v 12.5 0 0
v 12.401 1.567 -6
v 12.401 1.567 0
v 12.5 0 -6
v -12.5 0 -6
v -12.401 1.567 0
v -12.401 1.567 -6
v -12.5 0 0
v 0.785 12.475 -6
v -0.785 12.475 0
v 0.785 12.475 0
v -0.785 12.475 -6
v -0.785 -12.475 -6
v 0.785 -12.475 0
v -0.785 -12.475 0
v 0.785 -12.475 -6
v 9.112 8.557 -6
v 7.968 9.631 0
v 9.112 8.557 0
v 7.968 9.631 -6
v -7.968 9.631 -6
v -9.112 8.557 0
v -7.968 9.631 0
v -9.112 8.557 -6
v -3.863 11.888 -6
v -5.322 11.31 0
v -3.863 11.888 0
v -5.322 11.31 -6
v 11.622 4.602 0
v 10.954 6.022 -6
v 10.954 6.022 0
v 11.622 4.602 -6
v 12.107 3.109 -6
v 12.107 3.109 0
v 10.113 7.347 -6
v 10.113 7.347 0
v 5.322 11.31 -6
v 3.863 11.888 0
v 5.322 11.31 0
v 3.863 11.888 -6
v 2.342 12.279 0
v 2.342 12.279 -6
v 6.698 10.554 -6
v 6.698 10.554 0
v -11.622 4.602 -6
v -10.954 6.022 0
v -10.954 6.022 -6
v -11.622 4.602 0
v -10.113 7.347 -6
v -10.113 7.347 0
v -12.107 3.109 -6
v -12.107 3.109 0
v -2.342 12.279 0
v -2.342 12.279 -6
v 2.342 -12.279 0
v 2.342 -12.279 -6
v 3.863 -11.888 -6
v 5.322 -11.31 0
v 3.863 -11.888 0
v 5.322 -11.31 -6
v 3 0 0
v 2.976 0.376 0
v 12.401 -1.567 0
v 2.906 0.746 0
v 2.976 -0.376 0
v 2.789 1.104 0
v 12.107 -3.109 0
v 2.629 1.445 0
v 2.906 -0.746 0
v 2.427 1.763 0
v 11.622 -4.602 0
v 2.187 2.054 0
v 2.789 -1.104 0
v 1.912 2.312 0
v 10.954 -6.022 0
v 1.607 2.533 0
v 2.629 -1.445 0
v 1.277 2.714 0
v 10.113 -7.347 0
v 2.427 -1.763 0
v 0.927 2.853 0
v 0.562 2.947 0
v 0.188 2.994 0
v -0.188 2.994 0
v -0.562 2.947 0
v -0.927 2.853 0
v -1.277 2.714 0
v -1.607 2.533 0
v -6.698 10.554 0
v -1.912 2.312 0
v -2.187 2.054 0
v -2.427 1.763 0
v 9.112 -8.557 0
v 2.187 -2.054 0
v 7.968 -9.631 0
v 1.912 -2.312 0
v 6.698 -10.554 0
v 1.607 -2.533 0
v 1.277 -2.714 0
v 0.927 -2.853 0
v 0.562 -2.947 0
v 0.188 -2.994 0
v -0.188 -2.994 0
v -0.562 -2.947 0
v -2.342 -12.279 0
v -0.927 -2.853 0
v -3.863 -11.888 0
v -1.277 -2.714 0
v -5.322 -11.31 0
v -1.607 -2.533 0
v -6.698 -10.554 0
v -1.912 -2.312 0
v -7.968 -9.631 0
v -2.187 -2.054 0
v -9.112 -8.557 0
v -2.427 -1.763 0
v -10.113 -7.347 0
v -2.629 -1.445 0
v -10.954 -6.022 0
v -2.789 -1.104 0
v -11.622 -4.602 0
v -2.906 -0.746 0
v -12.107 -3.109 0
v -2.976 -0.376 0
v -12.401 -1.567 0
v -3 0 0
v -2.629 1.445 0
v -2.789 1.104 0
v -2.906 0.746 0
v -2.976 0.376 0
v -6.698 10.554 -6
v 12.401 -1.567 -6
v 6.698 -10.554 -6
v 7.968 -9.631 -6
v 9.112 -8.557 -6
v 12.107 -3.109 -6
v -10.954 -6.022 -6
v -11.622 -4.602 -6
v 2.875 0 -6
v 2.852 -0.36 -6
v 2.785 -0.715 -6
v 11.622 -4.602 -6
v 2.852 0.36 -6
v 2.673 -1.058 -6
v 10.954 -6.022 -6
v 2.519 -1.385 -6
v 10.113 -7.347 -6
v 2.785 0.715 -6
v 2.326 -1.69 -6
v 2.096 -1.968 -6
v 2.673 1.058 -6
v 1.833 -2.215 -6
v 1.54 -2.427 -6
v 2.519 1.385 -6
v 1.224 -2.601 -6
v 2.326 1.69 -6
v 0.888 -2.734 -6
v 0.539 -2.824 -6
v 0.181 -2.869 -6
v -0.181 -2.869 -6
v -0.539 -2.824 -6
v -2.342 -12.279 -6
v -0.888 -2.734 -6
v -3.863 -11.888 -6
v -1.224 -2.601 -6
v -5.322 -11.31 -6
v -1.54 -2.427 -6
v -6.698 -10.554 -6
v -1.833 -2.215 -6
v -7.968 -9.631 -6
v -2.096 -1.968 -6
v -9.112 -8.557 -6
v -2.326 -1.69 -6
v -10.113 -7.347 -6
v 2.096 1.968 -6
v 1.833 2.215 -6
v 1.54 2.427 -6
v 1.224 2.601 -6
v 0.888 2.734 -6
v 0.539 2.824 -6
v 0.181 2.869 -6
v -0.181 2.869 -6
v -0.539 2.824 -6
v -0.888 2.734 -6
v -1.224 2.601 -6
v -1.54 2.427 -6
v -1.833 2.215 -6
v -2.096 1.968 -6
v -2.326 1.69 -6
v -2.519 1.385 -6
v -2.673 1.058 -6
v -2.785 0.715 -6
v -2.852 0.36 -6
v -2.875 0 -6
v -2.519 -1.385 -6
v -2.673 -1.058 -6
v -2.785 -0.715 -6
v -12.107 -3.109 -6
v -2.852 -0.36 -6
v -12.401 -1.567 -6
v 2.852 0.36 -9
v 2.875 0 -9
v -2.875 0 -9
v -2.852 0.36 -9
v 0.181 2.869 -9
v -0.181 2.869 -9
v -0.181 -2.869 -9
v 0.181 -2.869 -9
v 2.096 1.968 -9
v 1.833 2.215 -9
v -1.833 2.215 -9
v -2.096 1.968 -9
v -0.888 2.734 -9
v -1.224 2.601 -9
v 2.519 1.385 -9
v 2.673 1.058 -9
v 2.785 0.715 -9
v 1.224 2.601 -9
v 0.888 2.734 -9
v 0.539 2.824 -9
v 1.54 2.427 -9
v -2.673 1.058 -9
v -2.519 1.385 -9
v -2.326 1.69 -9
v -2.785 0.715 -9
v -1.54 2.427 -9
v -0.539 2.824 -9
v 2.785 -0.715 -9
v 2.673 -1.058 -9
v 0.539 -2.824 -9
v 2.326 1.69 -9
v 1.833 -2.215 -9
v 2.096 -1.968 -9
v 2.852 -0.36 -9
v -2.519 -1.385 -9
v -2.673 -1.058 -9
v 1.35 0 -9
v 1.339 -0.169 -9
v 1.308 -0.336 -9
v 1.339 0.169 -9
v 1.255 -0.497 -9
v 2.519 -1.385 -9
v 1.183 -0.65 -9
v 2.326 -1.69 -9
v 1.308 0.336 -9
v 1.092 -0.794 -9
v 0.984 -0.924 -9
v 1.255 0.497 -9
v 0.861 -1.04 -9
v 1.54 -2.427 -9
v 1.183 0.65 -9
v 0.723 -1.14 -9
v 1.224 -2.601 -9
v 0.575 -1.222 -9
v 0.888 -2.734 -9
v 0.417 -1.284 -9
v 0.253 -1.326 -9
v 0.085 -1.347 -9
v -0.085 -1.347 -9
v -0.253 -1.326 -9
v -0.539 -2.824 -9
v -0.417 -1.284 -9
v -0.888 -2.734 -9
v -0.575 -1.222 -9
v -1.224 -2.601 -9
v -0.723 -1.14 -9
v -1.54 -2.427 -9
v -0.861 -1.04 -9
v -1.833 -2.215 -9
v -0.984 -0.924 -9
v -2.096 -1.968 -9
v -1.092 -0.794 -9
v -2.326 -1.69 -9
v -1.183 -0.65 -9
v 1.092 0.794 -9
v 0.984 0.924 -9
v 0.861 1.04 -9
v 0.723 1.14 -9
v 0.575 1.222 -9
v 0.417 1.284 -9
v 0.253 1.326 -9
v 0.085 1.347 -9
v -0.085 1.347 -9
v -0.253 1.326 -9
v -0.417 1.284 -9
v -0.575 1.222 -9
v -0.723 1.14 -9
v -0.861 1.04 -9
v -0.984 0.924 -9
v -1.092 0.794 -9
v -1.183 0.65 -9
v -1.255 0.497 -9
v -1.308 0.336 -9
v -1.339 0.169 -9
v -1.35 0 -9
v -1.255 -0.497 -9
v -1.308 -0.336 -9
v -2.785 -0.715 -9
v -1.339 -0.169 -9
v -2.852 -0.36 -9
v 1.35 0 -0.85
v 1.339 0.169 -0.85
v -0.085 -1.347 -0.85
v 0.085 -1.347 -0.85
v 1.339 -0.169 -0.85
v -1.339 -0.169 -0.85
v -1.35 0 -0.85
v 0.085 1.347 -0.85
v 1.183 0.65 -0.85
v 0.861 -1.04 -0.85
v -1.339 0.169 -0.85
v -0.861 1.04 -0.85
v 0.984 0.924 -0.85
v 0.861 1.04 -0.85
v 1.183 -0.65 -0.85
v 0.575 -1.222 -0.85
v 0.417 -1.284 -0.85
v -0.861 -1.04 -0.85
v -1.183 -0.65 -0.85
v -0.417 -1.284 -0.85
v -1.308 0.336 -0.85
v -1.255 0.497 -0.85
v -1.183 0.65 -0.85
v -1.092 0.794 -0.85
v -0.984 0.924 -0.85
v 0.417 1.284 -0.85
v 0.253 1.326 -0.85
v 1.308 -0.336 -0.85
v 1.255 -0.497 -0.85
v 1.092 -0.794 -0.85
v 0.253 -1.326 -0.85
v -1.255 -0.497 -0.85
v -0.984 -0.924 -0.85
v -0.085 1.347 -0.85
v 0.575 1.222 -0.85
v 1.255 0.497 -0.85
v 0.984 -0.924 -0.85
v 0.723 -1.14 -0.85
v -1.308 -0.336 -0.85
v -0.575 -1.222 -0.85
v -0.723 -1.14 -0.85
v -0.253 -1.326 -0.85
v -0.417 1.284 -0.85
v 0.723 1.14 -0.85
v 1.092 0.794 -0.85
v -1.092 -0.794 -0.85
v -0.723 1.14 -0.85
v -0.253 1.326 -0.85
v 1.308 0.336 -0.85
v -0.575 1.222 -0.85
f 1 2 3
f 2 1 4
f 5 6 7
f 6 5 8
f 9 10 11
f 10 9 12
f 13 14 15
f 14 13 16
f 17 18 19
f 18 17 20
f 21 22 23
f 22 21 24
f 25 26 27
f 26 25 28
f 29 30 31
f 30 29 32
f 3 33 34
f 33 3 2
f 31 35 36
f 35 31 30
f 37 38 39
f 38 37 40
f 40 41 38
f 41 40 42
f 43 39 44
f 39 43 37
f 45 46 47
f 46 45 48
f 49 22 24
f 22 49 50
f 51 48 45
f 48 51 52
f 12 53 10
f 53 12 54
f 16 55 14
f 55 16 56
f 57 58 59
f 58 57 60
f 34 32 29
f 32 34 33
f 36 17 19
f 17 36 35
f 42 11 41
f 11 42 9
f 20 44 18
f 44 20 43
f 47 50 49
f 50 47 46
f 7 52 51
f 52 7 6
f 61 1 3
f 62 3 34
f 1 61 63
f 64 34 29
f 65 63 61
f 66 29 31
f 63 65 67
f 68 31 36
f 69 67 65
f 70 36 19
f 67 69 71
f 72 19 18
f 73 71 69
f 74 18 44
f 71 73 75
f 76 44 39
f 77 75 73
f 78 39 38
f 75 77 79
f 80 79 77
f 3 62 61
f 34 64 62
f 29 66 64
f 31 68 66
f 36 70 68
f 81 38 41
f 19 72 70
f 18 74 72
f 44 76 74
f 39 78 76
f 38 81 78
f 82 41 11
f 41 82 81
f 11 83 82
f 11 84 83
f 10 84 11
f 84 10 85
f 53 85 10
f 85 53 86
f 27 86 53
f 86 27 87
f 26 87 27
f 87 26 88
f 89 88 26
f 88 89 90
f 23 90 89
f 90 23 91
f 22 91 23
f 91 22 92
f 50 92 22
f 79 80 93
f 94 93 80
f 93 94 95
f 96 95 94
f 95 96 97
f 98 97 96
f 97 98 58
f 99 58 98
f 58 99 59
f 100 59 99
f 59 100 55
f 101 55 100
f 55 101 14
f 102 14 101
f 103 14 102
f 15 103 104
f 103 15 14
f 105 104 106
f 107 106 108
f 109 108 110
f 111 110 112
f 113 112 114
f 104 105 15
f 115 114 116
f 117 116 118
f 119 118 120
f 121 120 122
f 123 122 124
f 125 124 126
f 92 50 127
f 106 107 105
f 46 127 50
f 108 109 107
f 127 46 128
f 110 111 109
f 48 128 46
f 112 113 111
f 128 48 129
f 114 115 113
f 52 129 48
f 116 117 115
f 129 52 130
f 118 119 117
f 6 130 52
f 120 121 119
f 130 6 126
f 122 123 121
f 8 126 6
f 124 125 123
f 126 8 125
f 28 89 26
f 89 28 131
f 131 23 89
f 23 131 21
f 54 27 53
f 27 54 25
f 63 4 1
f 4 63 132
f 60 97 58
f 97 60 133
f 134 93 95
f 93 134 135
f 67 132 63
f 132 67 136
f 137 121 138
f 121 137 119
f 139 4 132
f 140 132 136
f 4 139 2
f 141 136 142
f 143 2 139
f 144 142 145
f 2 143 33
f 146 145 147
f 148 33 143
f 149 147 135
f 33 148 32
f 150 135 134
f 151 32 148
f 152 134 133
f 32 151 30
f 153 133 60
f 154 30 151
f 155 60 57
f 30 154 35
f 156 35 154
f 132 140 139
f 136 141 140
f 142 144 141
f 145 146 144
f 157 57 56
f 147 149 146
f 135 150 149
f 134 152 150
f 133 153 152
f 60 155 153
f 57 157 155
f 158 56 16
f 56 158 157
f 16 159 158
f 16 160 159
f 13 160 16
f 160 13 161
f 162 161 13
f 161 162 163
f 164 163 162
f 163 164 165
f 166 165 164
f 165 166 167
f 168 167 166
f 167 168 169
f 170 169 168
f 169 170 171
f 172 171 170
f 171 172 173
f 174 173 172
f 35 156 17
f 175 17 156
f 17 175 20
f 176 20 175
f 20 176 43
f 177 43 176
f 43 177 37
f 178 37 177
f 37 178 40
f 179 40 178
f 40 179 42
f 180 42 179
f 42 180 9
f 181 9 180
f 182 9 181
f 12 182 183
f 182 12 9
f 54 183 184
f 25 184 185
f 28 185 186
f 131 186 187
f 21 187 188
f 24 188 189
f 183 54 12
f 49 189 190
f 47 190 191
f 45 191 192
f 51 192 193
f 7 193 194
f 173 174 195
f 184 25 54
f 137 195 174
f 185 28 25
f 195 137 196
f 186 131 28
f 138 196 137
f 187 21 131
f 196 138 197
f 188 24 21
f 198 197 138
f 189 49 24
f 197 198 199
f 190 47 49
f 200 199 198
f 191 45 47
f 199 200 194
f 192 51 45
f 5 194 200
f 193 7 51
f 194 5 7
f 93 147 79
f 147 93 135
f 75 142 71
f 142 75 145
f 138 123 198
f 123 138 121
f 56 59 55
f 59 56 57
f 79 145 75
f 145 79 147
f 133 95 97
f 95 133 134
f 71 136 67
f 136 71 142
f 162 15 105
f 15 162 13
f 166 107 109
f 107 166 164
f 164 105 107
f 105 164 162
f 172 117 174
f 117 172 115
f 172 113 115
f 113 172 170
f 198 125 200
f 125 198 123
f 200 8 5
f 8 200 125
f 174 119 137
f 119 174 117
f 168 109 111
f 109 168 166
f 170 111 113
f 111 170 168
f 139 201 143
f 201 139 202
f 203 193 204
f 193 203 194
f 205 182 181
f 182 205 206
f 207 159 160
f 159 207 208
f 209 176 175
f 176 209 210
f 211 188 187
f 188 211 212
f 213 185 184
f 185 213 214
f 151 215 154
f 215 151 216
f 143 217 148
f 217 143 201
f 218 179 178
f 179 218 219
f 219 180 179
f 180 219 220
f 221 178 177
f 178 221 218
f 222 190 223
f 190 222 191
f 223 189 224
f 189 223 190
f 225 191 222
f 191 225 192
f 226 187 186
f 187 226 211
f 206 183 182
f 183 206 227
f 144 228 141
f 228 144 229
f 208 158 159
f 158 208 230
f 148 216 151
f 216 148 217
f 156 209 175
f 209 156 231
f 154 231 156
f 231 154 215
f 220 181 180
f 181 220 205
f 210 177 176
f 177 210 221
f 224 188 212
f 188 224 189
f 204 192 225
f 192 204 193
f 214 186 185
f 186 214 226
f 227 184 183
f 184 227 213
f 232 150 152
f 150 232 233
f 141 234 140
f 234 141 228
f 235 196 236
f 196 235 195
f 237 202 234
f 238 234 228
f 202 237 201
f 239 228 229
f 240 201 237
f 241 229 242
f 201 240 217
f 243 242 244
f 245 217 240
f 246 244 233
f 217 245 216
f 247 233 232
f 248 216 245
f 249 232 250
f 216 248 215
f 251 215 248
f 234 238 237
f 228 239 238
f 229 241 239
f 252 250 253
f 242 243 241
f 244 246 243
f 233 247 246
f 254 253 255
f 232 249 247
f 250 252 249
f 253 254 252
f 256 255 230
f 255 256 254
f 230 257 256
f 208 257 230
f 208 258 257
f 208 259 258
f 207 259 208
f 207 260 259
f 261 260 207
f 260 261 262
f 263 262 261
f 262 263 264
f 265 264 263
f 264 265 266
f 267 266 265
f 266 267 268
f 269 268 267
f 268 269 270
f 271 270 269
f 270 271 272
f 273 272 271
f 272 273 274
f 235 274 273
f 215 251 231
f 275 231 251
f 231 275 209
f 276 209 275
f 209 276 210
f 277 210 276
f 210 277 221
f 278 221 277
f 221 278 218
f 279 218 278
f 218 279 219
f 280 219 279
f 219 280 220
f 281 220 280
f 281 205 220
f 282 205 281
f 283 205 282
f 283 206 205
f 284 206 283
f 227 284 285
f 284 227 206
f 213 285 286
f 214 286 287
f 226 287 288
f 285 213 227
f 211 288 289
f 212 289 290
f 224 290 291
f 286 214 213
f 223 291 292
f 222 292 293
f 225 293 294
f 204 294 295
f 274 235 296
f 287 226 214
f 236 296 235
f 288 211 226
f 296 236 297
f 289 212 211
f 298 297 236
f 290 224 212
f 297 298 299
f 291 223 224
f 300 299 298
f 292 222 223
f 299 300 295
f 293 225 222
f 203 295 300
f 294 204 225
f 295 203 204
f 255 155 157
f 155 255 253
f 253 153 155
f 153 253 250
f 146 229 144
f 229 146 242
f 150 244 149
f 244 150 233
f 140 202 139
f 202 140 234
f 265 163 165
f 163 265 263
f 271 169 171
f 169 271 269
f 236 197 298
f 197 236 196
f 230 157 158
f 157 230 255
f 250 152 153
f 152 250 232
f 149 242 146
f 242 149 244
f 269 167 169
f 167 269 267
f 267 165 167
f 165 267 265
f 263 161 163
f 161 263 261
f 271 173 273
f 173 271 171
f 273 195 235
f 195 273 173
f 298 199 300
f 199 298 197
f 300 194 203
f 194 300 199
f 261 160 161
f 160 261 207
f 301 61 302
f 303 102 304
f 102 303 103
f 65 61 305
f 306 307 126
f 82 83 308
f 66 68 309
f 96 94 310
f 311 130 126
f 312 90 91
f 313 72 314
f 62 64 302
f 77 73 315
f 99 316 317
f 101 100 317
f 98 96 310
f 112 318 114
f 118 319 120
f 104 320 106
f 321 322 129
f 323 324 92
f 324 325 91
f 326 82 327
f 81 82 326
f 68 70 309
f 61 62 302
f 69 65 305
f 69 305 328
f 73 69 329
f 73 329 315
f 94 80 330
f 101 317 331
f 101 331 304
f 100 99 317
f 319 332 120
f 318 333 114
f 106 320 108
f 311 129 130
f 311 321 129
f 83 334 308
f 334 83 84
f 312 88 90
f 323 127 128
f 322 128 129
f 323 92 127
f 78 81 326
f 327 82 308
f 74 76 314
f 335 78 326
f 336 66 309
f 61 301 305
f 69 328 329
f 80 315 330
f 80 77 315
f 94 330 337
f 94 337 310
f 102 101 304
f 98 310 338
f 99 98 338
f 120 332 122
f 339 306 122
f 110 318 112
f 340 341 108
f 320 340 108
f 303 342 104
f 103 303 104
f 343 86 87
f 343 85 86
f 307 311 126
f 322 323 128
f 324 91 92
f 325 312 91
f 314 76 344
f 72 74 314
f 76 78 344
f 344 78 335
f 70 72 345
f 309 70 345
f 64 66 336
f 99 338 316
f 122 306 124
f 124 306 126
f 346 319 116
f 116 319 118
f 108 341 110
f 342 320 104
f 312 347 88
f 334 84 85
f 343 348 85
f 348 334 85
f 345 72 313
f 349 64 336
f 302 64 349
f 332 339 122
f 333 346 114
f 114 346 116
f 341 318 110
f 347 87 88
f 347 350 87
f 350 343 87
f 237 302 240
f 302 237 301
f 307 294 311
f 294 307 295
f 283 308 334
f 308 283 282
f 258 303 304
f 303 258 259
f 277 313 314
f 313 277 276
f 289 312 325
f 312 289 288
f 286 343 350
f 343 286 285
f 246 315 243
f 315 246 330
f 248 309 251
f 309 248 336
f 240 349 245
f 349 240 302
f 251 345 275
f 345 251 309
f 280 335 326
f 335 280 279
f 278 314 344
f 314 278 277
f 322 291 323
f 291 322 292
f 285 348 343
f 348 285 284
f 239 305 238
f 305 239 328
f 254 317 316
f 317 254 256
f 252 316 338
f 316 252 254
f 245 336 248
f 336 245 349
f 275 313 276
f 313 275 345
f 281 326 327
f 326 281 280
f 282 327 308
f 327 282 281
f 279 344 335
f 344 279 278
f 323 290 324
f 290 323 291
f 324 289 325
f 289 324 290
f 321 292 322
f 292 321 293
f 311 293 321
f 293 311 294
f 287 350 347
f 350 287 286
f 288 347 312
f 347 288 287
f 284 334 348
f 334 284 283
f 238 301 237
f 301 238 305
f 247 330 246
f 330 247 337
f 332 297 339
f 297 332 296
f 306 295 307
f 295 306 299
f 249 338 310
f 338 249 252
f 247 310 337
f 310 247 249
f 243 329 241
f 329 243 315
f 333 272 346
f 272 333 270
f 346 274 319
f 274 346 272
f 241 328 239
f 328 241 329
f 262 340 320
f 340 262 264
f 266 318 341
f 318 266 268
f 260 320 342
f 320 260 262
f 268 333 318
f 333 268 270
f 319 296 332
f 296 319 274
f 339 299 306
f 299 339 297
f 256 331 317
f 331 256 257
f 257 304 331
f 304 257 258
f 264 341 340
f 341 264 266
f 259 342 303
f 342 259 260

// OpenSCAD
$fn = 50;


difference() {
	union() {
		translate(v = [0, 0, -6.0000000000]) {
			cylinder(h = 6, r = 12.5000000000);
		}
		#translate(v = [0, 0, -9.0000000000]) {
			cylinder(h = 9, r = 2.8750000000);
		}
	}
	union() {
		translate(v = [0, 0, 0]) {
			rotate(a = [0, 0, 0]) {
				difference() {
					union() {
						translate(v = [0, 0, -9.0000000000]) {
							cylinder(h = 9, r = 1.0000000000);
						}
						translate(v = [0, 0, -0.8500000000]) {
							cylinder(h = 0.8500000000, r1 = 1.3500000000, r2 = 3.0000000000);
						}
						translate(v = [0, 0, -9.0000000000]) {
							cylinder(h = 9, r = 1.3500000000);
						}
						translate(v = [0, 0, -9.0000000000]) {
							cylinder(h = 9, r = 1.0000000000);
						}
					}
					union();
				}
			}
		}
	}
}
